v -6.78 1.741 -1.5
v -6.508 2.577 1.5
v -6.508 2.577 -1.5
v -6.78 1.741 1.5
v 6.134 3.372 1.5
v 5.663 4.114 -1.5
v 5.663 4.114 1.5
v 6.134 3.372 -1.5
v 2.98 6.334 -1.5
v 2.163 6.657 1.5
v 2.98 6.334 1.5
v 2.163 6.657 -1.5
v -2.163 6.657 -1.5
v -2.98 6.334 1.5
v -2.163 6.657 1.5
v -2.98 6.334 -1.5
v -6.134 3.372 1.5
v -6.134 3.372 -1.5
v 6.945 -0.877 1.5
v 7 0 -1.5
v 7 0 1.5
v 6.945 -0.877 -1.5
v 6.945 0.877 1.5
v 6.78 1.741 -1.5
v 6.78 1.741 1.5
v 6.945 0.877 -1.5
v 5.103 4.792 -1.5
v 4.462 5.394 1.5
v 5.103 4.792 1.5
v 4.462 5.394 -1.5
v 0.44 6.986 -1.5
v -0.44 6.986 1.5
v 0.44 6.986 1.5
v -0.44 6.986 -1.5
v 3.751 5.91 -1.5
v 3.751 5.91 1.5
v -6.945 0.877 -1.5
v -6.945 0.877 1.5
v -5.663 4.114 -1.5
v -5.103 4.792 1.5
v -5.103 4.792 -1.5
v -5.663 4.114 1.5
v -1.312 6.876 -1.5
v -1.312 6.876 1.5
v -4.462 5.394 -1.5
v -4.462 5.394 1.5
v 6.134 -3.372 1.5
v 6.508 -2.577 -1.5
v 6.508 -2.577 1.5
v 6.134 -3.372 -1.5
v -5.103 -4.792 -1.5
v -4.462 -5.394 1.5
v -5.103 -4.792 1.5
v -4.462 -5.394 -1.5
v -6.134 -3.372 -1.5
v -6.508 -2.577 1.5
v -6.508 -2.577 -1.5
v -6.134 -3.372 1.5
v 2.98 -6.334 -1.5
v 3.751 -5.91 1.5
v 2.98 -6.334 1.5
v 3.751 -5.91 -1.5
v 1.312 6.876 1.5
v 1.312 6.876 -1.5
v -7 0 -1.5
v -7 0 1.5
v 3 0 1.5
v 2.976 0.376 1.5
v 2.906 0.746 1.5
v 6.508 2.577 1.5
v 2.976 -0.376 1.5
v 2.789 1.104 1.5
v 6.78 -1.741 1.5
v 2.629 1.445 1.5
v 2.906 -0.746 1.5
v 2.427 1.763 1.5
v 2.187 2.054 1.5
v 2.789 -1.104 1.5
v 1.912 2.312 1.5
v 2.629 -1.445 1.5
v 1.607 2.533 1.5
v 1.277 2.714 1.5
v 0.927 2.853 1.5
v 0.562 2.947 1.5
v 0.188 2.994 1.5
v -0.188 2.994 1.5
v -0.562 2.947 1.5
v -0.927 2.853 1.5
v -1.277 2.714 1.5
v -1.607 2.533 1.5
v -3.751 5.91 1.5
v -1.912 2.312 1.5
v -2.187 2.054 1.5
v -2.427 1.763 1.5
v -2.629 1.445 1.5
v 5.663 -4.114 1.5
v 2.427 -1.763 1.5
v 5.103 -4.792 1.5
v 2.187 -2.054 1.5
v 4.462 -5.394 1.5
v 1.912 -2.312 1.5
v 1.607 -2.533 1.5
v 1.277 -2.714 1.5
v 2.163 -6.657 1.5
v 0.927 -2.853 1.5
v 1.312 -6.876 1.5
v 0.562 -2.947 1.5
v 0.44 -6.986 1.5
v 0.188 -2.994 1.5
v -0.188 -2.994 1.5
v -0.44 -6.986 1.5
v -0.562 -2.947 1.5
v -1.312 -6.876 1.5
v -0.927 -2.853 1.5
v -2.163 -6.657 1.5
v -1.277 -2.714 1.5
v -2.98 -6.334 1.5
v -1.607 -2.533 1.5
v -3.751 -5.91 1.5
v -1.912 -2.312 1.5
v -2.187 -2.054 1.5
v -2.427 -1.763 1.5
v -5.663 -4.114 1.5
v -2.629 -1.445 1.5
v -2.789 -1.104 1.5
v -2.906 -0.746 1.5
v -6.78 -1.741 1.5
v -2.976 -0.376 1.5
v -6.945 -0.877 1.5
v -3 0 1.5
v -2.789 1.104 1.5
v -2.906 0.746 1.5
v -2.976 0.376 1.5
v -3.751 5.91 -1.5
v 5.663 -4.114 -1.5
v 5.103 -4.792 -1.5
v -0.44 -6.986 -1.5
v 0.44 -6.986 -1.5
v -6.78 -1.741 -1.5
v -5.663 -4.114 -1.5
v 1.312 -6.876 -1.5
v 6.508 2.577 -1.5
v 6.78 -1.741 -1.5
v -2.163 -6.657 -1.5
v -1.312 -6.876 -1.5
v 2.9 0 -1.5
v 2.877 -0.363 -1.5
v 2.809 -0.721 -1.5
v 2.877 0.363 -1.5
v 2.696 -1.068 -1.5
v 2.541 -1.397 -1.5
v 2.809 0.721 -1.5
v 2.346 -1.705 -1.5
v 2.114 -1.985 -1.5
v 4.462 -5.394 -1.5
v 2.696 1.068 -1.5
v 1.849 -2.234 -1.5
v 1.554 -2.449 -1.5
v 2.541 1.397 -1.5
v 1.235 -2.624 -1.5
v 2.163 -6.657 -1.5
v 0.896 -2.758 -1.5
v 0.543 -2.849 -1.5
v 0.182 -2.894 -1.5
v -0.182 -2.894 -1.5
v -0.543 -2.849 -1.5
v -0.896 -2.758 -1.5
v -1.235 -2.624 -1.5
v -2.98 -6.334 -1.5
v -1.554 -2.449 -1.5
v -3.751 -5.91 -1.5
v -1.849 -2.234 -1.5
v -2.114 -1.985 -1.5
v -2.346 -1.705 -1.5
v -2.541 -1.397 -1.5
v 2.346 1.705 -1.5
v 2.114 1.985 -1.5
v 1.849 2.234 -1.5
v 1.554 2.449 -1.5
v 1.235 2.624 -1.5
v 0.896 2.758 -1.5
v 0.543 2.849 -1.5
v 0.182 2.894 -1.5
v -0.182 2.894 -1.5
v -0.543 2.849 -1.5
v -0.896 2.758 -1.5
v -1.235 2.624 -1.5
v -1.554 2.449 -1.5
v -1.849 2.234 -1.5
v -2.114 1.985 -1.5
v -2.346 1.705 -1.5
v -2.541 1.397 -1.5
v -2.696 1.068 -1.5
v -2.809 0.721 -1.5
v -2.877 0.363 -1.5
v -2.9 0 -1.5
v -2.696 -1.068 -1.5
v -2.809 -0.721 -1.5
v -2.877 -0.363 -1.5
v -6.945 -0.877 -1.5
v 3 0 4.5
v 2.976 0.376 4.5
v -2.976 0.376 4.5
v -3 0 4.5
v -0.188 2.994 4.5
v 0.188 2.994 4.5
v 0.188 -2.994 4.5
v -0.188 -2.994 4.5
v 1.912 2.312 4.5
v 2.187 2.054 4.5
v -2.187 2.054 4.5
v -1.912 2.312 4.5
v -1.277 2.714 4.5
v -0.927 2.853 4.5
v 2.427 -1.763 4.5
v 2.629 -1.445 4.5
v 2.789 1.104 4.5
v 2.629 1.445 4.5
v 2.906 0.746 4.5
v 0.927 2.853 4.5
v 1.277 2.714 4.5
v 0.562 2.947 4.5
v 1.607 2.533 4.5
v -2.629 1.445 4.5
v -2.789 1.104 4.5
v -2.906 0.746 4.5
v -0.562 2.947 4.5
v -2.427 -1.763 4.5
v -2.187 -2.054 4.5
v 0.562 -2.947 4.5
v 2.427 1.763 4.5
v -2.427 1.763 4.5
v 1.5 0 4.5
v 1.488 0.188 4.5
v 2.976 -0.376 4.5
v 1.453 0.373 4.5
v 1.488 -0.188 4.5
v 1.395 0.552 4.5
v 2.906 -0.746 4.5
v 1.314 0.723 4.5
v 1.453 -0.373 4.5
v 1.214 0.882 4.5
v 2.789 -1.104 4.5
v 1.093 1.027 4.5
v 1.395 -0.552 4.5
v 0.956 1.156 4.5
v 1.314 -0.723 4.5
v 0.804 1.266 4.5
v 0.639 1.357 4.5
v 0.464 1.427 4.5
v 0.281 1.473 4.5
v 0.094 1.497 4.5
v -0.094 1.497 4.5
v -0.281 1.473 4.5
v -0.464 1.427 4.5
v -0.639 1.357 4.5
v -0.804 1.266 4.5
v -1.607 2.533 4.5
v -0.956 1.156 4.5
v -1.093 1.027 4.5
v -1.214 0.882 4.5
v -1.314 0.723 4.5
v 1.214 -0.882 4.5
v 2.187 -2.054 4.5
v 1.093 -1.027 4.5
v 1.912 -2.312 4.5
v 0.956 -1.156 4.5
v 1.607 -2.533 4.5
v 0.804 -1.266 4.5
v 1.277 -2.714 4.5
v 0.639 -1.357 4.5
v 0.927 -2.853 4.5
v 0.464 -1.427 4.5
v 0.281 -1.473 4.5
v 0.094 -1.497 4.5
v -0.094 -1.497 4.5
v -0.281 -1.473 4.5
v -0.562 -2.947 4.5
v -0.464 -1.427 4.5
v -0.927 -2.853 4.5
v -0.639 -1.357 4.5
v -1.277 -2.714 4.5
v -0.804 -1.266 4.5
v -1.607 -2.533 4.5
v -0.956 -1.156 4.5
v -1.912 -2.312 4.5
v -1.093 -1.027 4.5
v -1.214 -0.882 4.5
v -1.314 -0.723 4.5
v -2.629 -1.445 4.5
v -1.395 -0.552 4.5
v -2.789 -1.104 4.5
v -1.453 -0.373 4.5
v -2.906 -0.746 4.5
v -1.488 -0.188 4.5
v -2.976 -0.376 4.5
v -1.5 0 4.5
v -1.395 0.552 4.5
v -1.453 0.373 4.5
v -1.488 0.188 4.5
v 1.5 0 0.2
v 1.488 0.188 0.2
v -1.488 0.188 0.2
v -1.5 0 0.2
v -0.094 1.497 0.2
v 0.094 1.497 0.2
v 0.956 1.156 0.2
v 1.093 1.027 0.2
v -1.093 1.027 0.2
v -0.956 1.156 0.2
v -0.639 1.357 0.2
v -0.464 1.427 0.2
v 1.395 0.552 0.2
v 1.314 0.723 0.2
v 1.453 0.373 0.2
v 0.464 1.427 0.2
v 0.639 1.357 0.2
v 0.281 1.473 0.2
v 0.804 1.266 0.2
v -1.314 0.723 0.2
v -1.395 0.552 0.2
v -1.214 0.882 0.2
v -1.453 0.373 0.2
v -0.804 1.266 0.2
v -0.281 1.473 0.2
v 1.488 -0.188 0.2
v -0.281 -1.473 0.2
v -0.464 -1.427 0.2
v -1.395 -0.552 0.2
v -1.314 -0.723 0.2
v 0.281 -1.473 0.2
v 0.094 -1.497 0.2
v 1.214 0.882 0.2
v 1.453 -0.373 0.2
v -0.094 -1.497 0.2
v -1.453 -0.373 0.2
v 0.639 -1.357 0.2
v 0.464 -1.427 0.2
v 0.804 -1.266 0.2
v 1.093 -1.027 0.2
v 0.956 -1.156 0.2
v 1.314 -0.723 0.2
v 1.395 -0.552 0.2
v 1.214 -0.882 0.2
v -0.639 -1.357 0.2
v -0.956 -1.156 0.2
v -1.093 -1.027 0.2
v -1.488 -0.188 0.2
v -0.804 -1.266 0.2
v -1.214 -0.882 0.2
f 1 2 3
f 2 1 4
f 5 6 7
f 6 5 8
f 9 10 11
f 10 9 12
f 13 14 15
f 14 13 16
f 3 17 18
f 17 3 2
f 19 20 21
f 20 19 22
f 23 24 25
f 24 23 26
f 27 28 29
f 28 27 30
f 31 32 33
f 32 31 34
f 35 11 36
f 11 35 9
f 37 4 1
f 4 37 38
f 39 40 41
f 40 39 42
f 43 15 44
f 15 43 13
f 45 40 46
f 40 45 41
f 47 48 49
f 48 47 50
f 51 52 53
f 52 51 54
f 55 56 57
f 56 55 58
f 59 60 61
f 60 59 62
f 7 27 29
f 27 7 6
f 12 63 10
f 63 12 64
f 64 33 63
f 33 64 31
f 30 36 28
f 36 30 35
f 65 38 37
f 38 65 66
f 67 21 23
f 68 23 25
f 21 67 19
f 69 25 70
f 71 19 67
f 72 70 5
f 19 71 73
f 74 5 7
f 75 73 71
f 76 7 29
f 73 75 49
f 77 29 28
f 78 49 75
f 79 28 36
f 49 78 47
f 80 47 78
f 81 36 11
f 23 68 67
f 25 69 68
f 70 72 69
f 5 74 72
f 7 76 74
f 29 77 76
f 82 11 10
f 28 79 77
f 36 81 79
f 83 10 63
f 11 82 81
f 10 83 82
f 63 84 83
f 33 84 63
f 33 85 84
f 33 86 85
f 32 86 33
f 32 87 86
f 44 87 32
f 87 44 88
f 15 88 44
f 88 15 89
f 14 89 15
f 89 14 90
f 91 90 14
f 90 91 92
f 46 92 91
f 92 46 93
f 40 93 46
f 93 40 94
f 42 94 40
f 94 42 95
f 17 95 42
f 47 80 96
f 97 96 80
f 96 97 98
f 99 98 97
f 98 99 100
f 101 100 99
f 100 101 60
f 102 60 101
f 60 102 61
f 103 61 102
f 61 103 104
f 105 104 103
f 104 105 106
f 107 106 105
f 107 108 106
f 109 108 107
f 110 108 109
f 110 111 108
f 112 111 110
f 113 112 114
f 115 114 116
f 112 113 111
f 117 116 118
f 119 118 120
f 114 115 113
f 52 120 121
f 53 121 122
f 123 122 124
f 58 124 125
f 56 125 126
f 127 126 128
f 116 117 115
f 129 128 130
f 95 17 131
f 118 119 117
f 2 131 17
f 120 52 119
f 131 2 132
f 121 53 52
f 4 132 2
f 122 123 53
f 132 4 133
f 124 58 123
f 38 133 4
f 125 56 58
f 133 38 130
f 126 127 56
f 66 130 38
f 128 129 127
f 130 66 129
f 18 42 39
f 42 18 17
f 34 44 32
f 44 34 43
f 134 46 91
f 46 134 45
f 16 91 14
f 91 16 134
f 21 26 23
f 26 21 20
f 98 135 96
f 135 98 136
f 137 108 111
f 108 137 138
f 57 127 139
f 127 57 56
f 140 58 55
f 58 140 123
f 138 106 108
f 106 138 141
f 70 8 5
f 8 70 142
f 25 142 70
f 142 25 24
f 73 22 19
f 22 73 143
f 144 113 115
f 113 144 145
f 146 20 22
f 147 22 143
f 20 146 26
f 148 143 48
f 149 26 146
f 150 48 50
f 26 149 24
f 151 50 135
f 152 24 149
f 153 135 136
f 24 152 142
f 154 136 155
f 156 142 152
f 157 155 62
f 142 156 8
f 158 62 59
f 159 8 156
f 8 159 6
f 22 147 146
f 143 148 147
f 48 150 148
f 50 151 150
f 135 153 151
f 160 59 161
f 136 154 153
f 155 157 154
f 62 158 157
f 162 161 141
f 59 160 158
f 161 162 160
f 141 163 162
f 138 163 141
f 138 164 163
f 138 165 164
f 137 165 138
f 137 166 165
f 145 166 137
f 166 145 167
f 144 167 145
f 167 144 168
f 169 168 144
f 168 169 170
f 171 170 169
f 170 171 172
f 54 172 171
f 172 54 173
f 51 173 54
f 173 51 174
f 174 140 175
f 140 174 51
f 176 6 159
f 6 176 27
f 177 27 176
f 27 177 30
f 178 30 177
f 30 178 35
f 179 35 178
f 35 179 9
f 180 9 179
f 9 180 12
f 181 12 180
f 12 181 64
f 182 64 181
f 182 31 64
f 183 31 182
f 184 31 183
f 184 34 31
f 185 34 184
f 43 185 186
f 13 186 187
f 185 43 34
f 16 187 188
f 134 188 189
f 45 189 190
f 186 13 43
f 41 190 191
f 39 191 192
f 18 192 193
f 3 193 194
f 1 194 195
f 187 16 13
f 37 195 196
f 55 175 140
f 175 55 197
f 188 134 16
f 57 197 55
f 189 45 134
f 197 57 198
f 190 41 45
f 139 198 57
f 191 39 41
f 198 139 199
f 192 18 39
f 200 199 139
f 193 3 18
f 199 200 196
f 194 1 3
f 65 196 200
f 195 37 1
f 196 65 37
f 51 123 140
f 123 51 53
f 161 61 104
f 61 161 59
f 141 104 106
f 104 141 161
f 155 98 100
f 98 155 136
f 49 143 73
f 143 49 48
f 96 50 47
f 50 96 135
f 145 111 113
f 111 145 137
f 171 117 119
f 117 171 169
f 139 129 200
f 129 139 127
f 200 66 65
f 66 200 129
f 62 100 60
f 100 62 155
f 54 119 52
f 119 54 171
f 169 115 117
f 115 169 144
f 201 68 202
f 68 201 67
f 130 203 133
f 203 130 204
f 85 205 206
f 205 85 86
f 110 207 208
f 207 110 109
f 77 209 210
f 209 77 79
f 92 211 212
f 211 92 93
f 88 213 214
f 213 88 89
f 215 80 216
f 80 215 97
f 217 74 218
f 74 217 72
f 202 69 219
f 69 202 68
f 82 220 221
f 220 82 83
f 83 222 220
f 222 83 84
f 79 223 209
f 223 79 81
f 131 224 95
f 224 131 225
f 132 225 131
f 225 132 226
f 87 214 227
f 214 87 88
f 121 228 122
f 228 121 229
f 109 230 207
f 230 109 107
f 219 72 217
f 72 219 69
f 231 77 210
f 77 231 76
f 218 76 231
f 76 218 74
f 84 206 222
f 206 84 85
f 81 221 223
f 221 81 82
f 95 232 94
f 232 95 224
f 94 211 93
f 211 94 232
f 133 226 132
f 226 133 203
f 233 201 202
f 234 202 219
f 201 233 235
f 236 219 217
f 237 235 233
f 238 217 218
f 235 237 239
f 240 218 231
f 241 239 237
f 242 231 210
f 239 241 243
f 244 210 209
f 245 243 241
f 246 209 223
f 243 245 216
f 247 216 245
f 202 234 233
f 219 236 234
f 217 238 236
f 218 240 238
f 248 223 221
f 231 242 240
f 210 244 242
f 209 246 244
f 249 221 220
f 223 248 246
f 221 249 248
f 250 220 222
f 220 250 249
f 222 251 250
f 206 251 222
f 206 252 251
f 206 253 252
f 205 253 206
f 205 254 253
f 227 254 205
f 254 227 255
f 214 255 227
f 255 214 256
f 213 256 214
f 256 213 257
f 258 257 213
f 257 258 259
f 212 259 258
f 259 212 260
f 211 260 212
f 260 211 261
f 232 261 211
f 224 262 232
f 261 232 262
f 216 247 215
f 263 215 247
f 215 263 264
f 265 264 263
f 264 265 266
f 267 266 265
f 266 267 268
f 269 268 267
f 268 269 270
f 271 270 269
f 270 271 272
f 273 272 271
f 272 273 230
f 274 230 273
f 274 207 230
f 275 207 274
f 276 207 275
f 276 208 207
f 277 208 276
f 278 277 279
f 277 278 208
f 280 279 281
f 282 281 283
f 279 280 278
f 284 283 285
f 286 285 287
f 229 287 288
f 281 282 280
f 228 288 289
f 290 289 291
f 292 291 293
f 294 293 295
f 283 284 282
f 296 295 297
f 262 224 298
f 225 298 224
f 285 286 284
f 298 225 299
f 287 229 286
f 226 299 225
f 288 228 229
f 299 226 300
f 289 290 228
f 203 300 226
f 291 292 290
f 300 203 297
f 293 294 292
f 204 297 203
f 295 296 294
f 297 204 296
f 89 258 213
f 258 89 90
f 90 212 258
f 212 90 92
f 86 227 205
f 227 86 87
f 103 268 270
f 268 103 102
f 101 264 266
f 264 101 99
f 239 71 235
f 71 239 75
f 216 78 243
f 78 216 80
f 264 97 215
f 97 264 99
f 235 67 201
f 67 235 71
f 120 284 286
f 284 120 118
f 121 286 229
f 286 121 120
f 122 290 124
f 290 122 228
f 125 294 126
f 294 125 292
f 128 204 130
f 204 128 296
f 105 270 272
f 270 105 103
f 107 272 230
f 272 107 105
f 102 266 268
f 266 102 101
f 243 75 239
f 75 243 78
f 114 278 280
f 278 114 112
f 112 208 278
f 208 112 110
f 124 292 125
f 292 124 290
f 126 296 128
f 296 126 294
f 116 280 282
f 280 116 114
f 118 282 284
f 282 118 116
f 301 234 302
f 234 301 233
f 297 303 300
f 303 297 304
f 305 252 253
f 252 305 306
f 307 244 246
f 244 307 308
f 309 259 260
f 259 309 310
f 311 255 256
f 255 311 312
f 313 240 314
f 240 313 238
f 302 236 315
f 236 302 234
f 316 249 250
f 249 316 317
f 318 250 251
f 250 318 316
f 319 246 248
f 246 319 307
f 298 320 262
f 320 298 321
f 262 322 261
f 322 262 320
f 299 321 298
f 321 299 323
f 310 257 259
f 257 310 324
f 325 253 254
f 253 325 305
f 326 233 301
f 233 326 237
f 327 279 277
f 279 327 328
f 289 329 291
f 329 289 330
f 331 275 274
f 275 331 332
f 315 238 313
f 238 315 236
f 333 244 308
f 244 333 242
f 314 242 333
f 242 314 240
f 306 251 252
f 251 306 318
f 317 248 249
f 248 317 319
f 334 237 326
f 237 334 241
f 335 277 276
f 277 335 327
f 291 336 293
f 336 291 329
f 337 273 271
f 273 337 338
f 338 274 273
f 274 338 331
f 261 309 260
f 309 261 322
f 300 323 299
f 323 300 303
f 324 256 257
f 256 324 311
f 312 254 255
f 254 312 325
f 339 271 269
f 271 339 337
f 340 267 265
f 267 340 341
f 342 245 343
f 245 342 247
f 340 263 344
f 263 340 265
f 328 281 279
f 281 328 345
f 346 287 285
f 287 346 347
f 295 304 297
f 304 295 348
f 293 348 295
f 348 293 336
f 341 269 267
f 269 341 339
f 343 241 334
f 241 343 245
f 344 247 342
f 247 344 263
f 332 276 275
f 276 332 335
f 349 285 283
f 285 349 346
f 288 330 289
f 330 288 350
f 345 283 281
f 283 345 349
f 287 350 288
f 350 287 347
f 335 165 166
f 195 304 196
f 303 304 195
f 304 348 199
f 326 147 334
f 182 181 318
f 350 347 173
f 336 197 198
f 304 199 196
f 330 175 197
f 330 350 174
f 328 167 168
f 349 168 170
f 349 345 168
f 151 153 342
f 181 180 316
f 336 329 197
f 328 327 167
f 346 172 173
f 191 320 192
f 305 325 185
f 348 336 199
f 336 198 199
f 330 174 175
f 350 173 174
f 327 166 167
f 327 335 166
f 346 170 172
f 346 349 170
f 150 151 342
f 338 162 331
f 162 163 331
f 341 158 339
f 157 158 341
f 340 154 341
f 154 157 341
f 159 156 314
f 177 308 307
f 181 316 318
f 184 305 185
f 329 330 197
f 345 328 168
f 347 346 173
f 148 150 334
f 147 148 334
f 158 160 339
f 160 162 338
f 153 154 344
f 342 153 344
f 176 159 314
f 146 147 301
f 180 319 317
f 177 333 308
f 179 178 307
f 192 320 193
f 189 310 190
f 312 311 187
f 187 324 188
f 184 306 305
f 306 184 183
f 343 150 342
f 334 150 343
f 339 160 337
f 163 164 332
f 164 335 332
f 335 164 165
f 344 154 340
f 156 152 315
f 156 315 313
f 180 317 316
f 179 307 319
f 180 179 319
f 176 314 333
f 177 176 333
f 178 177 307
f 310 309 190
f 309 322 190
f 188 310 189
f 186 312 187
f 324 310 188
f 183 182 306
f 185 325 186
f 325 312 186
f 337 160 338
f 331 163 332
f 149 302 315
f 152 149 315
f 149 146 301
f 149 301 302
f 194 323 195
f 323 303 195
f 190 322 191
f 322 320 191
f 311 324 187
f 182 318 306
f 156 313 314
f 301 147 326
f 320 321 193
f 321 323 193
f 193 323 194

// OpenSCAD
$fn = 50;


difference() {
	union() {
		translate(v = [0, 0, -1.5000000000]) {
			rotate(a = [0, 0, 0]) {
				cylinder(h = 3, r = 7.0000000000);
			}
		}
		translate(v = [0, 0, -1.5000000000]) {
			rotate(a = [0, 0, 0]) {
				cylinder(h = 6, r = 3.0000000000);
			}
		}
	}
	union() {
		translate(v = [0, 0, -125.0000000000]) {
			rotate(a = [0, 0, 0]) {
				cylinder(h = 250, r = 1.5000000000);
			}
		}
		#translate(v = [0, 0, 0.2000000000]) {
			rotate(a = [0, 180, 0]) {
				cylinder(h = 1.7000000000, r1 = 1.5000000000, r2 = 2.9000000000);
			}
		}
		#translate(v = [0, 0, 4.5000000000]) {
			rotate(a = [0, 180, 0]) {
				cylinder(h = 6, r = 1.5000000000);
			}
		}
	}
}
